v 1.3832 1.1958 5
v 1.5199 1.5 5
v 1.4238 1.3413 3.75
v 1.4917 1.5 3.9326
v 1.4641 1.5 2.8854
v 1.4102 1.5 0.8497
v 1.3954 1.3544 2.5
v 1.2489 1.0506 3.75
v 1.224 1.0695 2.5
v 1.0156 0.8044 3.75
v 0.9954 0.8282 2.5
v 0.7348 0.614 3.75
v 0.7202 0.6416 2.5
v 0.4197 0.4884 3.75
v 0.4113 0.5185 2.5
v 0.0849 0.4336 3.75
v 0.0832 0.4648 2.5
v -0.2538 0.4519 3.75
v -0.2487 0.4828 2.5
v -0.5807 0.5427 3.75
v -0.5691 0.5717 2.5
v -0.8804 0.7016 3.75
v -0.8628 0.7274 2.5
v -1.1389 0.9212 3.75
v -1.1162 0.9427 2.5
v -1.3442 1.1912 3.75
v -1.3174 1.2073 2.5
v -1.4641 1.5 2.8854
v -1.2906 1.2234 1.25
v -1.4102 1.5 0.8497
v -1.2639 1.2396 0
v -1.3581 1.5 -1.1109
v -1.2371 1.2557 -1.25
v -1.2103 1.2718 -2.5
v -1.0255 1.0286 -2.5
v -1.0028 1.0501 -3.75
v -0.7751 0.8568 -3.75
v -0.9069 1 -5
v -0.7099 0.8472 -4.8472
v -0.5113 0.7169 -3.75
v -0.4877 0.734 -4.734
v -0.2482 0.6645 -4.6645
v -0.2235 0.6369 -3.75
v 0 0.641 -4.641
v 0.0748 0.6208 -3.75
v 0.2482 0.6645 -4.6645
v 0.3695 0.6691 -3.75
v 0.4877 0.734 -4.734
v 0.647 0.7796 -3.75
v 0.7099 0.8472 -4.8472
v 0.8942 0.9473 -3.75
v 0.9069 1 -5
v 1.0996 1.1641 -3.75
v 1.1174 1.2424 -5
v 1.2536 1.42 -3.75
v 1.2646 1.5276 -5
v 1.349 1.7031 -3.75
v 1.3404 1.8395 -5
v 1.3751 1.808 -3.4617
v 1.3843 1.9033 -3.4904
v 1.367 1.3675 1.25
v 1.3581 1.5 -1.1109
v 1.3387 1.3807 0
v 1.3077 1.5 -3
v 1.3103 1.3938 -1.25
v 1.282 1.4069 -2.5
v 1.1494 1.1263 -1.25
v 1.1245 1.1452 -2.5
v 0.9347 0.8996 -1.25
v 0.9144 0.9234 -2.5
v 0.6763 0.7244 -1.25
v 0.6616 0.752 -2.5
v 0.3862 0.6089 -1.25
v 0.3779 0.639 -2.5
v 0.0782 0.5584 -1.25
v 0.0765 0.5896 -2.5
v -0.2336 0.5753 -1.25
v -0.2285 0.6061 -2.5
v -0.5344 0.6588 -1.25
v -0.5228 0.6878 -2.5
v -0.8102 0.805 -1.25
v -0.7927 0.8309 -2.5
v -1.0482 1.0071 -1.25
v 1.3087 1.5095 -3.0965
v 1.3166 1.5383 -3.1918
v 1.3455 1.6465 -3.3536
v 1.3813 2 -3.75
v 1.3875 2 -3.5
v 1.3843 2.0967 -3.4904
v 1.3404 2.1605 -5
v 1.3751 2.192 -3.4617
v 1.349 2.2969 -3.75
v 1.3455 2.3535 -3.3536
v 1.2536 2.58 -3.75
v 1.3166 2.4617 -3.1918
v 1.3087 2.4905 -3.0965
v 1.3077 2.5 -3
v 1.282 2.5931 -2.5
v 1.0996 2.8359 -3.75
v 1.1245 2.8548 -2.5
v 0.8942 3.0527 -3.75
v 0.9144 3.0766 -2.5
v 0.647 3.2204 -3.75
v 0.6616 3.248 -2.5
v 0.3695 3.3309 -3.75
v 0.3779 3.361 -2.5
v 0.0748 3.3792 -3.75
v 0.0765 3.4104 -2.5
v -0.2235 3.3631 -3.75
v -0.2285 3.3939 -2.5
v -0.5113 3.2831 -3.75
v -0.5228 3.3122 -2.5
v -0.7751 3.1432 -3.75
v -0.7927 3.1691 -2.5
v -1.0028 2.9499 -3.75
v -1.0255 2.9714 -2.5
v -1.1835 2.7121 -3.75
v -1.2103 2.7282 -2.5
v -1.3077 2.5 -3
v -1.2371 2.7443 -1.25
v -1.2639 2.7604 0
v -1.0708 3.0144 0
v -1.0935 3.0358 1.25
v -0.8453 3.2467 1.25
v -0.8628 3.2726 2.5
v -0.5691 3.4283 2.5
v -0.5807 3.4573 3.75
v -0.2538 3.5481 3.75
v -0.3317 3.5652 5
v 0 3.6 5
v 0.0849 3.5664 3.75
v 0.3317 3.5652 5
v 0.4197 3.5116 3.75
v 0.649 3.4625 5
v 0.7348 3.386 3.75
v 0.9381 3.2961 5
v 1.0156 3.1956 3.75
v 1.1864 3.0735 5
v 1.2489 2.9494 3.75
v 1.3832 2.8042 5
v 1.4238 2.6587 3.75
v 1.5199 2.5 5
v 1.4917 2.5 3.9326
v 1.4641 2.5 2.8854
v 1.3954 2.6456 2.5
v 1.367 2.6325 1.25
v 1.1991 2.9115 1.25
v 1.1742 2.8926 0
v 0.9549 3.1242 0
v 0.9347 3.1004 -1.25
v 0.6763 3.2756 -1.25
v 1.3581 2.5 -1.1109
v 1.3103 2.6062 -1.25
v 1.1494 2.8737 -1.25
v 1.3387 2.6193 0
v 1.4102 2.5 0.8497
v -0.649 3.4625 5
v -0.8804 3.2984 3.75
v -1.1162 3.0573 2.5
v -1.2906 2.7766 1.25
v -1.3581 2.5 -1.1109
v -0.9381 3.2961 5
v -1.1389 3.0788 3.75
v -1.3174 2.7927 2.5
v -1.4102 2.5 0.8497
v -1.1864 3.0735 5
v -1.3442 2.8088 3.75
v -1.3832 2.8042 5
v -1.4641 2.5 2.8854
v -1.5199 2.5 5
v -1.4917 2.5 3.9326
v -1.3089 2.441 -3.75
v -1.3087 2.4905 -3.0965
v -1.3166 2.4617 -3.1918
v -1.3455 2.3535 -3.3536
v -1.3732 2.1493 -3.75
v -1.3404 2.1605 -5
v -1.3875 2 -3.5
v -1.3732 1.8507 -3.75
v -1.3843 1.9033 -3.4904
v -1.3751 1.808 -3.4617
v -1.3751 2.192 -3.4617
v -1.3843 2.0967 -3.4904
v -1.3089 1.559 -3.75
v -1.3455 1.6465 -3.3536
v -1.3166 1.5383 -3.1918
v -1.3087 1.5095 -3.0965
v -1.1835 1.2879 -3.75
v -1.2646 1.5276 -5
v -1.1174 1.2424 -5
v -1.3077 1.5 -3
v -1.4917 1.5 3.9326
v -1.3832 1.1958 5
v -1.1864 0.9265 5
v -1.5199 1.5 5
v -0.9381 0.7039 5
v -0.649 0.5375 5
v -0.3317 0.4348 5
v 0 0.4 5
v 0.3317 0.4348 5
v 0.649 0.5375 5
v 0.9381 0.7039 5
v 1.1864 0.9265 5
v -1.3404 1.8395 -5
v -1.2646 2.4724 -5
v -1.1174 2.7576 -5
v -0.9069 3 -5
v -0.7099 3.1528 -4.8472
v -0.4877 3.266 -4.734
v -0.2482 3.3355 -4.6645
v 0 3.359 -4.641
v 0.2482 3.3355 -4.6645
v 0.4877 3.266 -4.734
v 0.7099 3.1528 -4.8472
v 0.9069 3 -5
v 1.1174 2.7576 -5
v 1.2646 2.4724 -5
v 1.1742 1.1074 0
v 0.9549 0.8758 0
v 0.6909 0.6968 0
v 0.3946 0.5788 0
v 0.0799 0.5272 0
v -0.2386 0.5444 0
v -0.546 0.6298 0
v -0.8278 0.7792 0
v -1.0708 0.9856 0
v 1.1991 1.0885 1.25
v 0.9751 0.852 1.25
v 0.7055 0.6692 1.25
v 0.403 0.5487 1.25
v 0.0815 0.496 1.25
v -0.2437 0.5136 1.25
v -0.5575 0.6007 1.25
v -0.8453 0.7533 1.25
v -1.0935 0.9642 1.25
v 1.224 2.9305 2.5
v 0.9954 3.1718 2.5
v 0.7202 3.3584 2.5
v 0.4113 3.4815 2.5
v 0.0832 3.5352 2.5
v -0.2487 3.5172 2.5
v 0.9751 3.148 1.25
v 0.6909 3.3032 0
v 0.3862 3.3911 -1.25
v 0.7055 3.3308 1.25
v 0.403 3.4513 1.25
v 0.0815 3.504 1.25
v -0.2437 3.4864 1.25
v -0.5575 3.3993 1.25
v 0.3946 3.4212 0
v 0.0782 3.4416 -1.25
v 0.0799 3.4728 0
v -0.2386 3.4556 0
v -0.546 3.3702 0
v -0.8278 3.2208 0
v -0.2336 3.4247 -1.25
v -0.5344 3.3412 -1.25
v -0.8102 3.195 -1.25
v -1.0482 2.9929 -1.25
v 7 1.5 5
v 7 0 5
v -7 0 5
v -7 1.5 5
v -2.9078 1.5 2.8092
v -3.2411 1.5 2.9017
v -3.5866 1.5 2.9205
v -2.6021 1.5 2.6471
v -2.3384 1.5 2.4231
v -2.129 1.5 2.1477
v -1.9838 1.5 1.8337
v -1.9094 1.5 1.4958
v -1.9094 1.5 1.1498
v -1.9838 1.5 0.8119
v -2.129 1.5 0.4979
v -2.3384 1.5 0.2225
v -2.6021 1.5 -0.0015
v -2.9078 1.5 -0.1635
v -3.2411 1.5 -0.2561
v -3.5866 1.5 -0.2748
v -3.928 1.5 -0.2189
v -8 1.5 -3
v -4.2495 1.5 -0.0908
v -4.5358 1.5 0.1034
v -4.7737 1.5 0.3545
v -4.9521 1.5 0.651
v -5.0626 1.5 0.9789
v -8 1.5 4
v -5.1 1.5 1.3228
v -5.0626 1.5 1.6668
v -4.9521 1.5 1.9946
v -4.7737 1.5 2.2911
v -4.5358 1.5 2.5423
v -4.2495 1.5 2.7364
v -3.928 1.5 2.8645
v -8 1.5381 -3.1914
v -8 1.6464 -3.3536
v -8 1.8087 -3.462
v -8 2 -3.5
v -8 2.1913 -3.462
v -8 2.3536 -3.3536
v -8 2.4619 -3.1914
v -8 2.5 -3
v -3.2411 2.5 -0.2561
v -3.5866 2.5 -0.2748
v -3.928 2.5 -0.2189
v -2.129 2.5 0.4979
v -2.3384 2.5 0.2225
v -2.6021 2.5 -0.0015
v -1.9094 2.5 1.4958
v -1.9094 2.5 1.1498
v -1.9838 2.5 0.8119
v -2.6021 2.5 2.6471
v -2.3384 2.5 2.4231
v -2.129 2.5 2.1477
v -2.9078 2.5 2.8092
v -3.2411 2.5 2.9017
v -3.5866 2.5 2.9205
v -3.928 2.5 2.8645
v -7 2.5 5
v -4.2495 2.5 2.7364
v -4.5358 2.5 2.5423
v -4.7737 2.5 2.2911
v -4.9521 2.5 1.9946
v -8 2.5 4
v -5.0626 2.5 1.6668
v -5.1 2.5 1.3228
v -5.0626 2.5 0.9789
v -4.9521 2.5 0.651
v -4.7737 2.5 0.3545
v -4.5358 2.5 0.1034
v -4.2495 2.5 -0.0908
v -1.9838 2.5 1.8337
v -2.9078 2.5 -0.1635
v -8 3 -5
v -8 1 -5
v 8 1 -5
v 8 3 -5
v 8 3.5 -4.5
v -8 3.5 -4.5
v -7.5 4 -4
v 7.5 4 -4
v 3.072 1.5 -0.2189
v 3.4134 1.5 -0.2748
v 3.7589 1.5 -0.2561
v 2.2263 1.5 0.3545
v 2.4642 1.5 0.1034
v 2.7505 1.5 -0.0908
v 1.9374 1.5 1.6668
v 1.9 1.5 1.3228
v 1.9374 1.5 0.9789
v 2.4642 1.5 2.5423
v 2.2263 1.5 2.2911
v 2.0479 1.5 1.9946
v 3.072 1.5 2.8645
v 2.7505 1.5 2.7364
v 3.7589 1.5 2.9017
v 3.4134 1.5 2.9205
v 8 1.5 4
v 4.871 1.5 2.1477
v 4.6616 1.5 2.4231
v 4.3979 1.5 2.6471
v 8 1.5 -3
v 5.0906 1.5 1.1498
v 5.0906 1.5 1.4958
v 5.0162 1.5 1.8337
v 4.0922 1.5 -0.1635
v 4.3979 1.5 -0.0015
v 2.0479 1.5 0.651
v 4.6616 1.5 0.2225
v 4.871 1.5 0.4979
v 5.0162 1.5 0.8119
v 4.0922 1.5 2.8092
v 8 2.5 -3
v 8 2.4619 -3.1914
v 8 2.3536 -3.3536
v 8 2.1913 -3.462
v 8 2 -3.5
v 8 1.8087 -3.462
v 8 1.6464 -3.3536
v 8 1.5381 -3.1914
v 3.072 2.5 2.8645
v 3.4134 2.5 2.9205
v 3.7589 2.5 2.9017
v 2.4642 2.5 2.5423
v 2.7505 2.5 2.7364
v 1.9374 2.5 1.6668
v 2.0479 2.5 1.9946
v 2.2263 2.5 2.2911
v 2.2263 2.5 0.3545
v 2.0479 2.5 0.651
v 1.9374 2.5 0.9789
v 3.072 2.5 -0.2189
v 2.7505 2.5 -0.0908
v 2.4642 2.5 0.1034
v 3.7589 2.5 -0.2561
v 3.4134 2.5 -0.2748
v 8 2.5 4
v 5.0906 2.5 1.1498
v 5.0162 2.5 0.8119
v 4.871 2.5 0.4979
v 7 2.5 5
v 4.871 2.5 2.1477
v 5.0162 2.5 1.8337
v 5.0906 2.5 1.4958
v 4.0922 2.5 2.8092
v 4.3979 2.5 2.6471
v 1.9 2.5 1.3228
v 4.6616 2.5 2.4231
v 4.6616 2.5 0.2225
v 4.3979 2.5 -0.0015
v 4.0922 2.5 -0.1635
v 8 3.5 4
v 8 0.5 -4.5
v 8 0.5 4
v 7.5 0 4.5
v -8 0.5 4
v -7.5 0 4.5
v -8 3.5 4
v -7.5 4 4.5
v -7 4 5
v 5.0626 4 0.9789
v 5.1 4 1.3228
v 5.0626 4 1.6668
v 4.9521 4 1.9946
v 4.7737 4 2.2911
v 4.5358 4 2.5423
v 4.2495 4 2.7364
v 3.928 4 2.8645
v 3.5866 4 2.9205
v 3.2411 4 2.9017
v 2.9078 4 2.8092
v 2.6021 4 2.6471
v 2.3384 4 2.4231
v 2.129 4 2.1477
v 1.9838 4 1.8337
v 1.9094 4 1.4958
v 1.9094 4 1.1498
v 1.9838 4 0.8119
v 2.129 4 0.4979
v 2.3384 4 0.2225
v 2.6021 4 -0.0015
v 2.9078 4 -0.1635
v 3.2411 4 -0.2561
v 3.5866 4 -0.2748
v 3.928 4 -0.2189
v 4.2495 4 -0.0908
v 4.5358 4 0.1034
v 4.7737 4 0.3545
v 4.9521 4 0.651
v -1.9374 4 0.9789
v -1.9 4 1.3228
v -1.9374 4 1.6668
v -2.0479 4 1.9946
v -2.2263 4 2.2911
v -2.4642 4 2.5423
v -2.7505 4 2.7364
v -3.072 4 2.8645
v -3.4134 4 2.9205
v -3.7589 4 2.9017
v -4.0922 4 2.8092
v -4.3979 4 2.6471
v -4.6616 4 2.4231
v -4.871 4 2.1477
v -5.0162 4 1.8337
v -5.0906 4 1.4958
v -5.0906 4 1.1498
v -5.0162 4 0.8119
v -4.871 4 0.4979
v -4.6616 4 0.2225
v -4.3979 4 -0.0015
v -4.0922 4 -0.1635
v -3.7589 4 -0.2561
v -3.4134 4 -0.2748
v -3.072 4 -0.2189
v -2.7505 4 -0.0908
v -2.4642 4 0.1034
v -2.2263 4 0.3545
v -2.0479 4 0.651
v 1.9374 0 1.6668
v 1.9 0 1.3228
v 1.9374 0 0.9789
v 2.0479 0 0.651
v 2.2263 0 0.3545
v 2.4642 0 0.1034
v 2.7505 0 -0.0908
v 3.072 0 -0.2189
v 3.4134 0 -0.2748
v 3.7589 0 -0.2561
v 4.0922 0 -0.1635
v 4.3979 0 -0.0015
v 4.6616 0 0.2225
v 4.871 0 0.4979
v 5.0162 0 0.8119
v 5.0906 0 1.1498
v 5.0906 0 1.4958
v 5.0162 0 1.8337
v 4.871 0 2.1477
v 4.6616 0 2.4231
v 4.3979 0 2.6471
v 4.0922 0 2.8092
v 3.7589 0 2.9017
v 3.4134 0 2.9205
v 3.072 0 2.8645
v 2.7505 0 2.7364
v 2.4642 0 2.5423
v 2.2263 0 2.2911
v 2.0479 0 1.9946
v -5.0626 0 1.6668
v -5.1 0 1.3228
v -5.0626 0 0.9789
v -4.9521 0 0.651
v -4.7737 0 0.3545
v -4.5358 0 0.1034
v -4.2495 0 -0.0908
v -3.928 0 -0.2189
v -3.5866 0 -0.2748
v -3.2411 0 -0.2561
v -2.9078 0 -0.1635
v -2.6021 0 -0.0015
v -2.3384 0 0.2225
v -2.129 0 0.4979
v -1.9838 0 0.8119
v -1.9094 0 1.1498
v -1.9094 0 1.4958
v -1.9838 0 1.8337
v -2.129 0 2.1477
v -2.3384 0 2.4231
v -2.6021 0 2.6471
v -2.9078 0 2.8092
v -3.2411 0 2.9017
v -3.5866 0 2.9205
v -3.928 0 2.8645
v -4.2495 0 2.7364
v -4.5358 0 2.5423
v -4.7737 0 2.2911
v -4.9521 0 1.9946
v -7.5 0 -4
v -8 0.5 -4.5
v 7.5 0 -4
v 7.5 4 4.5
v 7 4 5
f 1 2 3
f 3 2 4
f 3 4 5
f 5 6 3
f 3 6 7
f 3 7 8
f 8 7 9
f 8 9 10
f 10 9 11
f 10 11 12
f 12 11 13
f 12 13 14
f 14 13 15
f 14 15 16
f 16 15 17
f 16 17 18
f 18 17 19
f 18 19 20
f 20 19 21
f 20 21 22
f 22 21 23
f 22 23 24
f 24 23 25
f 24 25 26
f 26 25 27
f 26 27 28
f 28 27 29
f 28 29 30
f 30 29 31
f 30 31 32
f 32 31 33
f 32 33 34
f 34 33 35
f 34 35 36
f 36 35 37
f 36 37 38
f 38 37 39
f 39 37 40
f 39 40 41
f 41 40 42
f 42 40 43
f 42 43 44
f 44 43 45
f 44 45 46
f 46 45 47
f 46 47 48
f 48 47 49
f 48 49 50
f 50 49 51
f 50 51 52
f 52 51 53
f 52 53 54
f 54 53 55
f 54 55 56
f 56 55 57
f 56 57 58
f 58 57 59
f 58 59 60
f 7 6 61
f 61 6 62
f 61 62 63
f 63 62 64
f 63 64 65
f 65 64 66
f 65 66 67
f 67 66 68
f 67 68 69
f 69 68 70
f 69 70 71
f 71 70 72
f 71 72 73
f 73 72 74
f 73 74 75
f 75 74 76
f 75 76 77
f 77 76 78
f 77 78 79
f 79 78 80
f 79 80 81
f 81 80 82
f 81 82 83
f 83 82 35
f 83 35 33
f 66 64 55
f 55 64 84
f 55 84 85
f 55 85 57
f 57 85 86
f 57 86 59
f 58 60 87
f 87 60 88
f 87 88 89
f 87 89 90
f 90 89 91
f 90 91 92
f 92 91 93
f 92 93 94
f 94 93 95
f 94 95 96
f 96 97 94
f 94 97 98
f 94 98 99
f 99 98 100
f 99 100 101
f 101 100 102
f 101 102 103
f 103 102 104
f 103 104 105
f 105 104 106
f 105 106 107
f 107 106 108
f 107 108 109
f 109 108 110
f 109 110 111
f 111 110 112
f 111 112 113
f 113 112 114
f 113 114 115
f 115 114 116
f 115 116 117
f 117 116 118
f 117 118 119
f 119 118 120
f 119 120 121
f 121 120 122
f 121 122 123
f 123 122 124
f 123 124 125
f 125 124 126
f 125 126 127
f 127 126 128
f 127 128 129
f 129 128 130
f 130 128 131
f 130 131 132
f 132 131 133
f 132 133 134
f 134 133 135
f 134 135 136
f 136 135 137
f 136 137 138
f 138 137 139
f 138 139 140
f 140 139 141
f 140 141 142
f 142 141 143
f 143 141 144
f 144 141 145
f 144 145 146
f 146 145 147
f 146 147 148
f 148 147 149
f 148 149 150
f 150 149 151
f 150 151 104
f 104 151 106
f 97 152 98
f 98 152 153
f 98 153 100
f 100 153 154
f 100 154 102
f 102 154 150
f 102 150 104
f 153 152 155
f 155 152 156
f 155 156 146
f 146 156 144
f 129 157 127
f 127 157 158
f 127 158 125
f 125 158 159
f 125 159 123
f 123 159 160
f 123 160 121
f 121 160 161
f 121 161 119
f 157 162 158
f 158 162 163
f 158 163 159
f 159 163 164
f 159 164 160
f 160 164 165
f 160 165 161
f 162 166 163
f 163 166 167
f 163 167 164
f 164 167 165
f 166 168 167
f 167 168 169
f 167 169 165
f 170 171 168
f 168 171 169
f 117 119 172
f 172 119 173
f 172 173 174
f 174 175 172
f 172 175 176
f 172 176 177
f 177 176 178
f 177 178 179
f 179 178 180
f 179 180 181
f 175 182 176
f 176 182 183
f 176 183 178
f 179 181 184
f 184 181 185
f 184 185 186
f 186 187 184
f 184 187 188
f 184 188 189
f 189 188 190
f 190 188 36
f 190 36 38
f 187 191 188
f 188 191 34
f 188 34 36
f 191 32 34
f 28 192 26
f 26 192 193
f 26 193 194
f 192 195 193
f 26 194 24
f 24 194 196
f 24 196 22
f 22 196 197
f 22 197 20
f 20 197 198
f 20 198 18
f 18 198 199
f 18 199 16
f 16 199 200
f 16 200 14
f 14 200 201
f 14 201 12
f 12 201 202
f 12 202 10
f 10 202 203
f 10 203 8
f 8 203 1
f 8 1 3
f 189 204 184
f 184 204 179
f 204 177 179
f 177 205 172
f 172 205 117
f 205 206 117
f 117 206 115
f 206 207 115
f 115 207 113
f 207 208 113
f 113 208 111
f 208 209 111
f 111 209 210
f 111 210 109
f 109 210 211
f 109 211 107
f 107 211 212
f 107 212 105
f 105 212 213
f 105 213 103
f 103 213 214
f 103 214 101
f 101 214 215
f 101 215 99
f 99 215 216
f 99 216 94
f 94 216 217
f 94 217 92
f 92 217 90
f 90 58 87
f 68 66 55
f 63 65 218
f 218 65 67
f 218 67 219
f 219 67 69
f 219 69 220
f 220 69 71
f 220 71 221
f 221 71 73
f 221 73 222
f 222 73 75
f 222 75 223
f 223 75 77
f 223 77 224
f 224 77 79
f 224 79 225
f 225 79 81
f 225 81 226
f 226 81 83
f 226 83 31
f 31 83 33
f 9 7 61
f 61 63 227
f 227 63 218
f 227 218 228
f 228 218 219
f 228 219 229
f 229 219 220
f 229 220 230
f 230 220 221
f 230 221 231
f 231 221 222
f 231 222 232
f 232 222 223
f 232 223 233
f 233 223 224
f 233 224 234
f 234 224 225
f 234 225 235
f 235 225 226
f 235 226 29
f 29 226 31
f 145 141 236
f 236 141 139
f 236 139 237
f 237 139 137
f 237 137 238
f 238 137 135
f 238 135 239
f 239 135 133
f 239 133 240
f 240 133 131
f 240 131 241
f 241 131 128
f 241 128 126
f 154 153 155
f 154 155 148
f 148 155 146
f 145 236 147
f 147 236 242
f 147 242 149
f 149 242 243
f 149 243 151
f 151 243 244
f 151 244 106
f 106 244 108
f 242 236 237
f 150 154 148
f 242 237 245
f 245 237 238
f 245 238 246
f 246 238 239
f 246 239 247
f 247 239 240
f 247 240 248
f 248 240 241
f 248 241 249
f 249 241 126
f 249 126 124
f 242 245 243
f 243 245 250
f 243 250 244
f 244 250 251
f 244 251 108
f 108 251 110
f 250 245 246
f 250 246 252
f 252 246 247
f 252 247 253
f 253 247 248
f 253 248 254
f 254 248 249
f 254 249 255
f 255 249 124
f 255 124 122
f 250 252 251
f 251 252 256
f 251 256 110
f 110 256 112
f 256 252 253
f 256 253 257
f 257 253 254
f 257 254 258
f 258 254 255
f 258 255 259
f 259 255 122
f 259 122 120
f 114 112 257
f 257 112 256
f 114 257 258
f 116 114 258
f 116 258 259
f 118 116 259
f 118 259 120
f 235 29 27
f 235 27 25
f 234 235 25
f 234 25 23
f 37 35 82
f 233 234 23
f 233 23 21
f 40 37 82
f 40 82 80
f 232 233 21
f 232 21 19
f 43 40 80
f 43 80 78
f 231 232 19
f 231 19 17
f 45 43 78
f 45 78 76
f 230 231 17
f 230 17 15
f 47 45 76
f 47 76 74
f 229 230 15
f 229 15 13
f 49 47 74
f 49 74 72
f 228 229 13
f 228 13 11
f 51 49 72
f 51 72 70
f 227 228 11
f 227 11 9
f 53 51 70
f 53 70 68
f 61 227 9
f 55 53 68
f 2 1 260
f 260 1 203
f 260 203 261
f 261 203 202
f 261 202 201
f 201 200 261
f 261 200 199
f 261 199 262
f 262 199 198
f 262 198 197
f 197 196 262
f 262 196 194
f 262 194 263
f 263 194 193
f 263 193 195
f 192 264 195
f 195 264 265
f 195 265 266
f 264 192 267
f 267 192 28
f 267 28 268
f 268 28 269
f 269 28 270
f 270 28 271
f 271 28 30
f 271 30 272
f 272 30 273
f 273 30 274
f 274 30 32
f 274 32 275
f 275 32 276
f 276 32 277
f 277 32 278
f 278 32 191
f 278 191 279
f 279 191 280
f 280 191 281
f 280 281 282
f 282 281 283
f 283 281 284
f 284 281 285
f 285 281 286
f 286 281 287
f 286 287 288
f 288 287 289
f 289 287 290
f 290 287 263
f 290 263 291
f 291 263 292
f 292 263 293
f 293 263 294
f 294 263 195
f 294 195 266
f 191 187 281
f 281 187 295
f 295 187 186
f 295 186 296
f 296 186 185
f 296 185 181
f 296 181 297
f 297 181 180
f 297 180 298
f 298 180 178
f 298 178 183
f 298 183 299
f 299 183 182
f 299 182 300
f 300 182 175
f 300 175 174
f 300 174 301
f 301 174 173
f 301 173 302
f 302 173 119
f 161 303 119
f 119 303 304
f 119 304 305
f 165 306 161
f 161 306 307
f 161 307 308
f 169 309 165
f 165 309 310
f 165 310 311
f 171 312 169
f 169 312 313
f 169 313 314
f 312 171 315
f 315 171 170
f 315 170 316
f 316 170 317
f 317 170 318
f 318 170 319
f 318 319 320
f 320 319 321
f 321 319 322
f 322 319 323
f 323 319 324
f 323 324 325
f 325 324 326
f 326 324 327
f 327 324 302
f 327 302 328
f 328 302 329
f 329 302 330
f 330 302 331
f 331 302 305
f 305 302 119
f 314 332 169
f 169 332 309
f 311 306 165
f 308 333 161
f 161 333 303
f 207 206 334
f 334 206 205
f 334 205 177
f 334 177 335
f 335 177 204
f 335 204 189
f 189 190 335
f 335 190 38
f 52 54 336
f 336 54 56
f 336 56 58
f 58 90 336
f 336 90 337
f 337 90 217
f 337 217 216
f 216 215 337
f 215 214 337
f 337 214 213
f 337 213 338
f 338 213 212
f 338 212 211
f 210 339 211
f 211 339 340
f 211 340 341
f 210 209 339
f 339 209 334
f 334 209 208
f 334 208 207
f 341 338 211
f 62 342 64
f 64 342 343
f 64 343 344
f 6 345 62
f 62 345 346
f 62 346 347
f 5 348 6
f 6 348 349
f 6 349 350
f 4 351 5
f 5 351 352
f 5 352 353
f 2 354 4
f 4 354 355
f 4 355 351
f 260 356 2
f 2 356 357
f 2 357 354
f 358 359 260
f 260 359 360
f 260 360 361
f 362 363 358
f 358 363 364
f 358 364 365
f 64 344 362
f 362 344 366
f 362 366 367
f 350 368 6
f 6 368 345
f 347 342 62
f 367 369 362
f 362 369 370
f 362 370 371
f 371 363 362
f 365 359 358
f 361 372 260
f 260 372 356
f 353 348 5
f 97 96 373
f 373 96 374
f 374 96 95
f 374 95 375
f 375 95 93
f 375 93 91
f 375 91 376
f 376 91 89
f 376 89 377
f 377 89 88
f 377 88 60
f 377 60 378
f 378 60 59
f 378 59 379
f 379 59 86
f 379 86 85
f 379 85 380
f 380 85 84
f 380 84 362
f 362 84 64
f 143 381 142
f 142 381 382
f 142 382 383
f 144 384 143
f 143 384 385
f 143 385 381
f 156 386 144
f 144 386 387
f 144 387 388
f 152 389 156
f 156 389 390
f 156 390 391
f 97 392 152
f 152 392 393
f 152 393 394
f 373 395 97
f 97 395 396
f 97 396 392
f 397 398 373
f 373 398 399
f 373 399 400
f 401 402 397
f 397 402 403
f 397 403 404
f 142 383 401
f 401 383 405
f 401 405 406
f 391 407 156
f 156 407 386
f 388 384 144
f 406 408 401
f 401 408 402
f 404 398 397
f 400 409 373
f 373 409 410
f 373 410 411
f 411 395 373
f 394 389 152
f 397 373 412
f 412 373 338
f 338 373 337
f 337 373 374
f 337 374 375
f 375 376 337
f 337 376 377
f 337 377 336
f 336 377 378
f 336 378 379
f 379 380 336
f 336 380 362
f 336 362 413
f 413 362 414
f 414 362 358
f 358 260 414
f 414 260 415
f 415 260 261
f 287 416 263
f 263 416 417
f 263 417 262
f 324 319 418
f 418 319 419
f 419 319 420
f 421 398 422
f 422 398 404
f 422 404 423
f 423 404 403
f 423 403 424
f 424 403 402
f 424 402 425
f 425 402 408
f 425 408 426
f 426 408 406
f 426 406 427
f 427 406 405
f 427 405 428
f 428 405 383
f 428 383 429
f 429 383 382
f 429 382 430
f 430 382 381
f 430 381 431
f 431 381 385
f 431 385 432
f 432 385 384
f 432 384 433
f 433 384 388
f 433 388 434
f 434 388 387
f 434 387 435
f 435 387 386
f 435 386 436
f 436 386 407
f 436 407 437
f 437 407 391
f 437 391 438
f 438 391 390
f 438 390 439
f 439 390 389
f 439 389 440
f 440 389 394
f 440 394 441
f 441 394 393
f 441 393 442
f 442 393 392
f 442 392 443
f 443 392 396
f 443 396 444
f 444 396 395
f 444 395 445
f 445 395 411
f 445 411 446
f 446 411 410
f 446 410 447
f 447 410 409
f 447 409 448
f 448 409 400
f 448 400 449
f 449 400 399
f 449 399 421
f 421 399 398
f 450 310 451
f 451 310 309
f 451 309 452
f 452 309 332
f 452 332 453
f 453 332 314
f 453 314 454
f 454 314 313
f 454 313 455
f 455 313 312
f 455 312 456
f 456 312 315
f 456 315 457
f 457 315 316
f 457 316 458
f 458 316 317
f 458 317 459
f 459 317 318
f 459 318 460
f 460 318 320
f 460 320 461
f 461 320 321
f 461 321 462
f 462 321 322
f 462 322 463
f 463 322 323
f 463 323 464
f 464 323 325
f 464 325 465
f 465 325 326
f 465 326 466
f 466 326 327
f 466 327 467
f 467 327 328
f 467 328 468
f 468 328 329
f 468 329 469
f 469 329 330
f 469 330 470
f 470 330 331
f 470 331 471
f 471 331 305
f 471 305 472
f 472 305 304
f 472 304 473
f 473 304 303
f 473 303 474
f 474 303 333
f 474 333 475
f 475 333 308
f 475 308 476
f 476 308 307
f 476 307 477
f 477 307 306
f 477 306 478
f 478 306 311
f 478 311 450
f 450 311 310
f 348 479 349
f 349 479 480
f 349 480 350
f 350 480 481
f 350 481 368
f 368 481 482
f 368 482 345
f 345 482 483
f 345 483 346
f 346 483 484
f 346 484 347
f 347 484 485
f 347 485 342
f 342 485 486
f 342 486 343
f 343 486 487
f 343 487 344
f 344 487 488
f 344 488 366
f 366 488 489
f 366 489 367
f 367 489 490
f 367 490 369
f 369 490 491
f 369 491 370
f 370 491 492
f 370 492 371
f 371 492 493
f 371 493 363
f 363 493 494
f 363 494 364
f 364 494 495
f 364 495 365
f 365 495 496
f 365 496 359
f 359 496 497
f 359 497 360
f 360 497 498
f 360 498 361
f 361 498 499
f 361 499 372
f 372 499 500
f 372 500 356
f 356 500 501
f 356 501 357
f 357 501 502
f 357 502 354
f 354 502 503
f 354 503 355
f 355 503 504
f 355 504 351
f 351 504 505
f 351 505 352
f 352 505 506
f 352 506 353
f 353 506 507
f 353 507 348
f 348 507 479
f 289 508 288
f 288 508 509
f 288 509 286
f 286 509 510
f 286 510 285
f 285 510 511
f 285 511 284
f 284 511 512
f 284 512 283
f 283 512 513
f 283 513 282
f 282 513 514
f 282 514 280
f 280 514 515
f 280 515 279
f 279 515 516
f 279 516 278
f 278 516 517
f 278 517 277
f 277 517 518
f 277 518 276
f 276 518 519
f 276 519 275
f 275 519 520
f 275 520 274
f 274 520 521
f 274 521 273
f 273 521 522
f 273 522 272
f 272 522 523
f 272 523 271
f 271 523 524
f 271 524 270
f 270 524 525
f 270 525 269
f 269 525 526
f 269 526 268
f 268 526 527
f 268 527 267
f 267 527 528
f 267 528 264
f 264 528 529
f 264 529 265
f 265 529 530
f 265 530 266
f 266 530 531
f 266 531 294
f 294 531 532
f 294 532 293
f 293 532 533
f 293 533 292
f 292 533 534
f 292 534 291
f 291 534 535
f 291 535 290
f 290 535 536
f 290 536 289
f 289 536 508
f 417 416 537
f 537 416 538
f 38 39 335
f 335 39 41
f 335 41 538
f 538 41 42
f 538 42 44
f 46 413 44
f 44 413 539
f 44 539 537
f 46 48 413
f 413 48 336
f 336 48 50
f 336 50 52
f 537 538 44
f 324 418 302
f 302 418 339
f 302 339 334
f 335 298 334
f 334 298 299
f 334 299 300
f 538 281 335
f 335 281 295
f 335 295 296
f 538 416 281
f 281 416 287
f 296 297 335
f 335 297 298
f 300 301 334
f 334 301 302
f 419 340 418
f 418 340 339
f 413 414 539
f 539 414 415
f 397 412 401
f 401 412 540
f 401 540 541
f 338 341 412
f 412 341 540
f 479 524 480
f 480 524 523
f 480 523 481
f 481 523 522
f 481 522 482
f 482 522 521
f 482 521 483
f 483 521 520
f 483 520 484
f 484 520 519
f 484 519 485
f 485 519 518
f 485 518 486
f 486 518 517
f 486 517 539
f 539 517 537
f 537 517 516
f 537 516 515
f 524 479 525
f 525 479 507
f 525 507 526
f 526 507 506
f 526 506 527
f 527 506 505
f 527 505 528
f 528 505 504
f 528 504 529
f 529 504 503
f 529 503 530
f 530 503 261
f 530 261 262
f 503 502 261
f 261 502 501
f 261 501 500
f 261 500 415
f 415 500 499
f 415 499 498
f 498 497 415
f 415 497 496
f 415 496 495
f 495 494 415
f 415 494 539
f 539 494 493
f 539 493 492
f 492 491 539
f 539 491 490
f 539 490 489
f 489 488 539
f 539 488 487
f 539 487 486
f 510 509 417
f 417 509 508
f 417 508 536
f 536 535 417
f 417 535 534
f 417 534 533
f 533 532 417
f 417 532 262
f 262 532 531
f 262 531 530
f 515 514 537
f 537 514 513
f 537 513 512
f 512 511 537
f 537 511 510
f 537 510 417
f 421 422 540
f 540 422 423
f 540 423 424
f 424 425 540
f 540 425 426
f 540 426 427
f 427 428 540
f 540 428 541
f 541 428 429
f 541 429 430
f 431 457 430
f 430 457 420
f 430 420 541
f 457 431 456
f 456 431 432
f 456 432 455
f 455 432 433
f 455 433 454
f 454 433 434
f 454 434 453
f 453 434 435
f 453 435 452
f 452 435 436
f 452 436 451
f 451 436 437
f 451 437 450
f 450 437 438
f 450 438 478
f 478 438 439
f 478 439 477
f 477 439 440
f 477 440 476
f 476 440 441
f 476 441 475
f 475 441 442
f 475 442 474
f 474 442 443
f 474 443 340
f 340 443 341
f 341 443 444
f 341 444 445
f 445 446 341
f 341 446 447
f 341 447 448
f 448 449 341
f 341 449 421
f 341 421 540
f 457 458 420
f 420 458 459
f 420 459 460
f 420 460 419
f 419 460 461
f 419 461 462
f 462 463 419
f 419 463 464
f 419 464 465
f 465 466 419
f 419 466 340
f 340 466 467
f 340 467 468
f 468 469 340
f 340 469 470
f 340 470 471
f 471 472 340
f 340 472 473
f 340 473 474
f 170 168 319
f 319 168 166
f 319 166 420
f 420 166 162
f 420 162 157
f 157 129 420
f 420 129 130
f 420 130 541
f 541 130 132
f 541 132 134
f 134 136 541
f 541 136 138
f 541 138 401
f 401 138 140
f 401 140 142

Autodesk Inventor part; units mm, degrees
ref_plane "YZ Plane" through (0, 0, 0) normal (1, 0, 0) x (0, 1, 0)
ref_plane "XZ Plane" through (0, 0, 0) normal (0, 1, 0) x (-1, 0, 0)
ref_plane "XY Plane" through (0, 0, 0) normal (0, 0, 1) x (1, 0, 0)
sketch "Esboço1" plane through (0, 0, 0) normal (0, 1, 0) x (-1, 0, 0)
  line L0 (-8, -5) -> (8, -5)
  line L1 (8, -5) -> (8, 5)
  line L2 (8, 5) -> (-8, 5)
  line L3 (-8, 5) -> (-8, -5)
  line L4 (-8, -5) -> (8, 5) construction
  line L5 (8, -5) -> (-8, 5) construction
  point P0 (0, 0)
  dimension "d0" = 16
  dimension "d1" = 10
extrude "Extrusão1" add sketch "Esboço1" along normal blind 4
sketch "Esboço2" plane through (8, 0, 5) normal (1, 0, 0) x (0, 0, -1)
  line L0 (0, 0) -> (0, 4) projected
  line L1 (10, 0) -> (10, 4) projected
  line L2 (-0.795, 1.5) -> (-0.795, 2.5)
  line L3 (-0.795, 2.5) -> (6.8544, 2.5)
  line L4 (6.8544, 1.5) -> (-0.795, 1.5)
  line L5 (-0.795, 2.5) -> (8, 2.5)
  line L6 (8.5, 2) -> (8.5, 2)
  line L7 (8, 1.5) -> (-0.795, 1.5)
  line L8 (-0.795, 1.5) -> (-0.795, 2.5)
  arc A0 (8.5, 2) -> (8, 2.5) centre (8, 2) ccw
  arc A1 (8, 1.5) -> (8.5, 2) centre (8, 2) ccw
  point P0 (5, 0)
  point P1 (0, 2.5)
  point P2 (0, 1.5)
  point P3 (8.5, 1.5)
  point P4 (8.5, 2.5)
  dimension "d8" = 1
  dimension "d26" = 9.295
  dimension "d27" = 1
  dimension "d28" = 0.5
chamfer "Chanfro1" distance 1 angle 45 2 edges at (-8, 2, 5) (8, 2, 5)
chamfer "Chanfro2" distance 1 angle 45 2 edges at (0, 4, -5) (0, 0, -5)
chamfer "Chanfro3" distance 0.5 angle 45 4 edges at (8, 4, 0) (8, 0, 0) (-8, 4, 0) (-8, 0, 0)
sketch "Esboço3" plane through (0, 4, 0) normal (0, 1, 0) x (1, 0, 0)
  line L0 (-7.5, -4.5) -> (-7.5, 4) projected
  line L1 (7, -5) -> (8, -4) projected
  line L2 (-7.5, 4) -> (7.5, 4)
  line L3 (7.5, 4) -> (7.5, -4.5)
  line L4 (7.5, -4.5) -> (-7.5, -4.5)
  line L5 (-7.5, -4.5) -> (-7.5, 4)
  line L6 (8, 1.8544) -> (-8, 1.8544) projected
  line L7 (-7.5, 1.8544) -> (7.5, 1.8544)
  line L8 (7.5, 1.8544) -> (7.5, -4.5)
  line L9 (7.5, -4.5) -> (-7.5, -4.5)
  line L10 (-7.5, -4.5) -> (-7.5, 1.8544)
  line L11 (-7.5, -1.3228) -> (7.5, -1.3228)
  line L12 (-7.5, -1.3228) -> (-3.5, -1.3228)
  circle A0 centre (-3.5, -1.3228) radius 1.6
  line L13 (7.5, -1.3228) -> (3.5, -1.3228)
  circle A1 centre (3.5, -1.3228) radius 1.6
  point P0 (0, 0)
  dimension "d20" = 4
  dimension "d21" = 3.2
  dimension "d22" = 4
  dimension "d23" = 3.2
extrude "Extrusão3" cut sketch "Esboço3" against normal through all contours A0 L11 | L11 A0 | A1 L11 | L11 A1
extrude "Extrusão4" cut sketch "Esboço2" against normal through all contours L0 L3 L5 A0 A1 L7 L4
sketch "Esboço4" plane through (8, 1, -5) normal (0, 0, -1) x (-1, 0, 0)
  line L0 (0, 1.5) -> (0, 2.5) projected
  line L1 (16, 0) -> (16, 2) projected
  line L2 (16, 2) -> (16, 0)
  line L3 (0, 0) -> (0, 2)
  circle A0 centre (8, 1) radius 1.35
  point P0 (8, -1)
  dimension "d31" = 2.7
sketch "Esboço5" plane through (-7, 0, 5) normal (0, 0, 1) x (1, 0, 0)
  line L0 (0, 4) -> (-0.5, 4) projected
  line L1 (0, 0) -> (14, 0) projected
  line L2 (0, 4) -> (14, 4)
  line L3 (14, 4) -> (14, 0)
  line L4 (14, 0) -> (0, 0)
  line L5 (0, 0) -> (0, 4)
  circle A0 centre (7, 2) radius 1.6
  point P0 (7, 0)
  dimension "d32" = 3.2
loft "Transição1" cut profiles "Esboço4", "Esboço5" contours all / A0
properties part number "Sup_haste_corpo"
